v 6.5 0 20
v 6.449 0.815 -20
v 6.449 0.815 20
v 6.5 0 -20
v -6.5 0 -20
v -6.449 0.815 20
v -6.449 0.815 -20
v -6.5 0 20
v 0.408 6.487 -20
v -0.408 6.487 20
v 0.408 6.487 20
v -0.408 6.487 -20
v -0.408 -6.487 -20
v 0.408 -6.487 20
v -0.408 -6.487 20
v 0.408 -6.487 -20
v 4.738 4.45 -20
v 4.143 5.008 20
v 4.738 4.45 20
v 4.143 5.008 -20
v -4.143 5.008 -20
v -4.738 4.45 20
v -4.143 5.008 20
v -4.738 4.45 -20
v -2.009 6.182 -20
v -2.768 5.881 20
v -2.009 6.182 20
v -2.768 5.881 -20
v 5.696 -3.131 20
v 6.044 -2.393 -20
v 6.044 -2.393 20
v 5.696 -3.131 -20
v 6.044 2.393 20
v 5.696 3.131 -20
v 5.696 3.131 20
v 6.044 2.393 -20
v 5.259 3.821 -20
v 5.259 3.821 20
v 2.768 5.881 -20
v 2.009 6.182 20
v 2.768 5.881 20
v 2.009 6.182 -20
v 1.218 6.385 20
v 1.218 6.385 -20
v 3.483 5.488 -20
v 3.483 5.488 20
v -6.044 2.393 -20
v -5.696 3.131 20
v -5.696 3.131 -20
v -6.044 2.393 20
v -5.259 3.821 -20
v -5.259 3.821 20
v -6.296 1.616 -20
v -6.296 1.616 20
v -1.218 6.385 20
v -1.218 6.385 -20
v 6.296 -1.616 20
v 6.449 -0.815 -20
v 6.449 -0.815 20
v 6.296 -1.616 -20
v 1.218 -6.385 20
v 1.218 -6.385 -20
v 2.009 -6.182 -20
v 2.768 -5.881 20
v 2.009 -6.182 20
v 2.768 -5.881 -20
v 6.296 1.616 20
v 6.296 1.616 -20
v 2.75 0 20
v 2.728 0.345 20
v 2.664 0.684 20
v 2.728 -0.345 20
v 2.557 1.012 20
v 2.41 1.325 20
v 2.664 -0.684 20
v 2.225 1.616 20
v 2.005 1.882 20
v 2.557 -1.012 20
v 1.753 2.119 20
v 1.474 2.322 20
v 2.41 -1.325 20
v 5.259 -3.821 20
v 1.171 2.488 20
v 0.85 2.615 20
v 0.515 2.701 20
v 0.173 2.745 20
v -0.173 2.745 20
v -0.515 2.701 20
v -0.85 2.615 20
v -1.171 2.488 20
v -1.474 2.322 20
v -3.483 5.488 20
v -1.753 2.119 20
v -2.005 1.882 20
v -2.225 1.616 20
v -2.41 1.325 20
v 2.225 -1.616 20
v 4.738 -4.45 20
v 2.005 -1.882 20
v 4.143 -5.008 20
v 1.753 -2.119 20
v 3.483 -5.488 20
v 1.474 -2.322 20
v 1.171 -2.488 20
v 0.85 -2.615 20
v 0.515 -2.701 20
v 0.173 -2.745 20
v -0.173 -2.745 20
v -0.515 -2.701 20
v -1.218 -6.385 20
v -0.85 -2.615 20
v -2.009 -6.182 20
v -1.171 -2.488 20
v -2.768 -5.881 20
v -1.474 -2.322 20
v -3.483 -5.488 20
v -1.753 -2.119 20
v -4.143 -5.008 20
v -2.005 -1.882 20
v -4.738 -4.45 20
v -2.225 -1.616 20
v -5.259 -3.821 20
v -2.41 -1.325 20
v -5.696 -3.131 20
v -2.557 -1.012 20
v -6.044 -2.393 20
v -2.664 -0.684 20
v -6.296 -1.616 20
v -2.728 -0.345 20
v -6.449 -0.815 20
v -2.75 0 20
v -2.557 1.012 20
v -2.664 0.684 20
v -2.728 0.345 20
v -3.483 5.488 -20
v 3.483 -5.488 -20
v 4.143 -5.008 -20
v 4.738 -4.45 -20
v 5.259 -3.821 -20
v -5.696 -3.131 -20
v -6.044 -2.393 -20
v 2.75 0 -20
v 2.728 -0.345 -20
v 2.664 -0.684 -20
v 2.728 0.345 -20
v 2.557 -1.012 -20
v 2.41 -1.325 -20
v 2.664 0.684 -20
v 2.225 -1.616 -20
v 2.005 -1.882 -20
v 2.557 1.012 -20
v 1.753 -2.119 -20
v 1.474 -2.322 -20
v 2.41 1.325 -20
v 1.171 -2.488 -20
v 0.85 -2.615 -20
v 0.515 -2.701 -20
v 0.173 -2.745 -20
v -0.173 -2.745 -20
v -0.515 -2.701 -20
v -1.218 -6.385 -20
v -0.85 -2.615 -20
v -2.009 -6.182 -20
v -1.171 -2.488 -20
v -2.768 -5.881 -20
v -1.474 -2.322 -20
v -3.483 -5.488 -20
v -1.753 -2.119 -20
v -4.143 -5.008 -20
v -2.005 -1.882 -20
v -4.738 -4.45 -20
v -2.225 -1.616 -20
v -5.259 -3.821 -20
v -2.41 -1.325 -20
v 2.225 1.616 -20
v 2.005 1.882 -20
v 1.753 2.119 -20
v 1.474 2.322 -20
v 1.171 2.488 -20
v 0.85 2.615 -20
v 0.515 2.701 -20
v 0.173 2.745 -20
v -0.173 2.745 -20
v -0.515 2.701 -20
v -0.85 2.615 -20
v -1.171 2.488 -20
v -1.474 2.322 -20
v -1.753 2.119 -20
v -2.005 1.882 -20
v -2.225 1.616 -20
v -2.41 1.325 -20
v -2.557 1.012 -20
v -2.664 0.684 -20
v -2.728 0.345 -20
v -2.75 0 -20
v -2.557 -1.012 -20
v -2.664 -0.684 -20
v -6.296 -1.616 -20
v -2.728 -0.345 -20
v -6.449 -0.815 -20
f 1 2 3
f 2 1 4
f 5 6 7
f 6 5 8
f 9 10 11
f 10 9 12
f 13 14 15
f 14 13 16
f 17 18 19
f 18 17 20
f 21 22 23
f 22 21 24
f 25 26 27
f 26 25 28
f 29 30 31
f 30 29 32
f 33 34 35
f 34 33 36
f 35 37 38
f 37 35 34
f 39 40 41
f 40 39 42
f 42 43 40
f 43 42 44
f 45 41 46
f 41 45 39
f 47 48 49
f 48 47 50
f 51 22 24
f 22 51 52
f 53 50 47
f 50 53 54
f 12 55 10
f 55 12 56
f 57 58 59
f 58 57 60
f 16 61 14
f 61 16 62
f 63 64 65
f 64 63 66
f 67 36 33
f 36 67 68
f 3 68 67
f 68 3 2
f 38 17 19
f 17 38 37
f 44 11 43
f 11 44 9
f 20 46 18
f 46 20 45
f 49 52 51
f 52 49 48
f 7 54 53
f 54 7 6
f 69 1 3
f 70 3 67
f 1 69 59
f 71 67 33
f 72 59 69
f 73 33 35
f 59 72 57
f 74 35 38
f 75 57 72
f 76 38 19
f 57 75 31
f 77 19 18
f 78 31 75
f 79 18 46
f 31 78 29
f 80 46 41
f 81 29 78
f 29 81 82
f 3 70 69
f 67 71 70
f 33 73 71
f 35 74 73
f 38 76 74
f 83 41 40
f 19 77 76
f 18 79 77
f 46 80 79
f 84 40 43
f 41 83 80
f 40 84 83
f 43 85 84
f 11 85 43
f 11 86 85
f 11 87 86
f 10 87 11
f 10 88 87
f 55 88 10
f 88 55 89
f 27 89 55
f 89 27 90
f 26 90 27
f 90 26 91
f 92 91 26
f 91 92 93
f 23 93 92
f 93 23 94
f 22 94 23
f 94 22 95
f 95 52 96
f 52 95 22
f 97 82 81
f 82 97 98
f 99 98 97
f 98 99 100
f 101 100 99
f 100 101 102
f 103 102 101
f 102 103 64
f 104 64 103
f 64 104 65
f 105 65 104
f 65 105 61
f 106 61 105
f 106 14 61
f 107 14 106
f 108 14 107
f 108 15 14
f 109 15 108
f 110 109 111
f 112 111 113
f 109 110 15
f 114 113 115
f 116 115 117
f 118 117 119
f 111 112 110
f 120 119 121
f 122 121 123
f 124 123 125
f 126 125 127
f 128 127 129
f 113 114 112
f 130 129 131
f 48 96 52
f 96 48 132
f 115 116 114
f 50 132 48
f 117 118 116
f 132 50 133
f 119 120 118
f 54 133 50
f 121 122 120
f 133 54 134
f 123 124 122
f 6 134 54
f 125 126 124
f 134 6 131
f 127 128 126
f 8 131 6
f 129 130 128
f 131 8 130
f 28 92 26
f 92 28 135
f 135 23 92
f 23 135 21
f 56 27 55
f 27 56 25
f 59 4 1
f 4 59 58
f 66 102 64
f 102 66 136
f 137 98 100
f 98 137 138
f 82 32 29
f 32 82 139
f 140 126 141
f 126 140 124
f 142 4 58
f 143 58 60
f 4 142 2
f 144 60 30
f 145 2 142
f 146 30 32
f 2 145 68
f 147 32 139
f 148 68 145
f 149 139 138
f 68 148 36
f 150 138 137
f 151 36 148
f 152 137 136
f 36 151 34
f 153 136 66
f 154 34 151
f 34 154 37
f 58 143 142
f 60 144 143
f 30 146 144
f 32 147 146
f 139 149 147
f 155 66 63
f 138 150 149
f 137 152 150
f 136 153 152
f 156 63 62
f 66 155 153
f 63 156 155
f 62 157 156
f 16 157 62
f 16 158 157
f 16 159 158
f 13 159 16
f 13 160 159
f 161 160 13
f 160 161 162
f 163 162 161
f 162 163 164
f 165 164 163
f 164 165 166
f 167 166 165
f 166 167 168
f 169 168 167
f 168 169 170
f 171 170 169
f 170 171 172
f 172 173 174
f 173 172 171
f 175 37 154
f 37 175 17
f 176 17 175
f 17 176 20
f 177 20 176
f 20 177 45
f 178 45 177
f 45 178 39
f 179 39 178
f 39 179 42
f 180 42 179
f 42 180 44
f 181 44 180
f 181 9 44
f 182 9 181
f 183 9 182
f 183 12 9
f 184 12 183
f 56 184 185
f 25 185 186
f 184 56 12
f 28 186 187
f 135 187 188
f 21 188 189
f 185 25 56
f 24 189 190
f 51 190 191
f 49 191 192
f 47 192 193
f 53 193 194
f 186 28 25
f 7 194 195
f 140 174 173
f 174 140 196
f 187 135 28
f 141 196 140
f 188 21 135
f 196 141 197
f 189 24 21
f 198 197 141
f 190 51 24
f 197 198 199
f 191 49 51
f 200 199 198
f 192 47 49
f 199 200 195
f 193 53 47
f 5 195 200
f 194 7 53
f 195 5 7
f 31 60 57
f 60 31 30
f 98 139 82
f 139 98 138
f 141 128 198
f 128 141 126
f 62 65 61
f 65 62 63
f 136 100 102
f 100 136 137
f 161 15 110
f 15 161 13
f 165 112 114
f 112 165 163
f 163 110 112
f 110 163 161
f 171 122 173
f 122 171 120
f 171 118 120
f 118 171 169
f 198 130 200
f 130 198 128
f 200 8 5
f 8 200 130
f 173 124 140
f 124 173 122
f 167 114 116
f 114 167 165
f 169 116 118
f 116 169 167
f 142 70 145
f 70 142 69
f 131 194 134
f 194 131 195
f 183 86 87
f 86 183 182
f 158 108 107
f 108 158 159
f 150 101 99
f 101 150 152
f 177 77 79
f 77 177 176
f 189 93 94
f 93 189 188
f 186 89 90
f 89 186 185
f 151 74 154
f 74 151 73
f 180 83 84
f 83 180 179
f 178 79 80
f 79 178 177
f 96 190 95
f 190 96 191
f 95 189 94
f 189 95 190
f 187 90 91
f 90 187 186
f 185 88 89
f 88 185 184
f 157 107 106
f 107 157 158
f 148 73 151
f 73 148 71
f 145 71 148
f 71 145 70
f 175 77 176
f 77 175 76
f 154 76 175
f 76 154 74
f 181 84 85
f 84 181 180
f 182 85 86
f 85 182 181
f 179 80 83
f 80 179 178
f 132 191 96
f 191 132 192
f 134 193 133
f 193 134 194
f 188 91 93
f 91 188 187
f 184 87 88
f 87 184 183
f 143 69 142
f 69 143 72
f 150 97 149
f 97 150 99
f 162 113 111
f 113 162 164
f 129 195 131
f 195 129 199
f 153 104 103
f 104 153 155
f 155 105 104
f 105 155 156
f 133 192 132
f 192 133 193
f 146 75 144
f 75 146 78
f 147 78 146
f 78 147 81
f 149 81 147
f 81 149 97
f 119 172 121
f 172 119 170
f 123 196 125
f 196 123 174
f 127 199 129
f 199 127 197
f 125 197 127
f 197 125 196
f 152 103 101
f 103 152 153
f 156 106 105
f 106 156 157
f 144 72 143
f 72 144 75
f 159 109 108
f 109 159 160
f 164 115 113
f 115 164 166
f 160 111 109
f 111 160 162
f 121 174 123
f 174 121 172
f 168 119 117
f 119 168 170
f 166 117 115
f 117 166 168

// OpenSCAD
$fn = 50;


difference() {
	union() {
		translate(v = [0, 0, -20.0000000000]) {
			cylinder(h = 40, r = 6.5000000000);
		}
	}
	union() {
		translate(v = [0, 0, -100.0000000000]) {
			cylinder(h = 200, r = 2.7500000000);
		}
	}
}
